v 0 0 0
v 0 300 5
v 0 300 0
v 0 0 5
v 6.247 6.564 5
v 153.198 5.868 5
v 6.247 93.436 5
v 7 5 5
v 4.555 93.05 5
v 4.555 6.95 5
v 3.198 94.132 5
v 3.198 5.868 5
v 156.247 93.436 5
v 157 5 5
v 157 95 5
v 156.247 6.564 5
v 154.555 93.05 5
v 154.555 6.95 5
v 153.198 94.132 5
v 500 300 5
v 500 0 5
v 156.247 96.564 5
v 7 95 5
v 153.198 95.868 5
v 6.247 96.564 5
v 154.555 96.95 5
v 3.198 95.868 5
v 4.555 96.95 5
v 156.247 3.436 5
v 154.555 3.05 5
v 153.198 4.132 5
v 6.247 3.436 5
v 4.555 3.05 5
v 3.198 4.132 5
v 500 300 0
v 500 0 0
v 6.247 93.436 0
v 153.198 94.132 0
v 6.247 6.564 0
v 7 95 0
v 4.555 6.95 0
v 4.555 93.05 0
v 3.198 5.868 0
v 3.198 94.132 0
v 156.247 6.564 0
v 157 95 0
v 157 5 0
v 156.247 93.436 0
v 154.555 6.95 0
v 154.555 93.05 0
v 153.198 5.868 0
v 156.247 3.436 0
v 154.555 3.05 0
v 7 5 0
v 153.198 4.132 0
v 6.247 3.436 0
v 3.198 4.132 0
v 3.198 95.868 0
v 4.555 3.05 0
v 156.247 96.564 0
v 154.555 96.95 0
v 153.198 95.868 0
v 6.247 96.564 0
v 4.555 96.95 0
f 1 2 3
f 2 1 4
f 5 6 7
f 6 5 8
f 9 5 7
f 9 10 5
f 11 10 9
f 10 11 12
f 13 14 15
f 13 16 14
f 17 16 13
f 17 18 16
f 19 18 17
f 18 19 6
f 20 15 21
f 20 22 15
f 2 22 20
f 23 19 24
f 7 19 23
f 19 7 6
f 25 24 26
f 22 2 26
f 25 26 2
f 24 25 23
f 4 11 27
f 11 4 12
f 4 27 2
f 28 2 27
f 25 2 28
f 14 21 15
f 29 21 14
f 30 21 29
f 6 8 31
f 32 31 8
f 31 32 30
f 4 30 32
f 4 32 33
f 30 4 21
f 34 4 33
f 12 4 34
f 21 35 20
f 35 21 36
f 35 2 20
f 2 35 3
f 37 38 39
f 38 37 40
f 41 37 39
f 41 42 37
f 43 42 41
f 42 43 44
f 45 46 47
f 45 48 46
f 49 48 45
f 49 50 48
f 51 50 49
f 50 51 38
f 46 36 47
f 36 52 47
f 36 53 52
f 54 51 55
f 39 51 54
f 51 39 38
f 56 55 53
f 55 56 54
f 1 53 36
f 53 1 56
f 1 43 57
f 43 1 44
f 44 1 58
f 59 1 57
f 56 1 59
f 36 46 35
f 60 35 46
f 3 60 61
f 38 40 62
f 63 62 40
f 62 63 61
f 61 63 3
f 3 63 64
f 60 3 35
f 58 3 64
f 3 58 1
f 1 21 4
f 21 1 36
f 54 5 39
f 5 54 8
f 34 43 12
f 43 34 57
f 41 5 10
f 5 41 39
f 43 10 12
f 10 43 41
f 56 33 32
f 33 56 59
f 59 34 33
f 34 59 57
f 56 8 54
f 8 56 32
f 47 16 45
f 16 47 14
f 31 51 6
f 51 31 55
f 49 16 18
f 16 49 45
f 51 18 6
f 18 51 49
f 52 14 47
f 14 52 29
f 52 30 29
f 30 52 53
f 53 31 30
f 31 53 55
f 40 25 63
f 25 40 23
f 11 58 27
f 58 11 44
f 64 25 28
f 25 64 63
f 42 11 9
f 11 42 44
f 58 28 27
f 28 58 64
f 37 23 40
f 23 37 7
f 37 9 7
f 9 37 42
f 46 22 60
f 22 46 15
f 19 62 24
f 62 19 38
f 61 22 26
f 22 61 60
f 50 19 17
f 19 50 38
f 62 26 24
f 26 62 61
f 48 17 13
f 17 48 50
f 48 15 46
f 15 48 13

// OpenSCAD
union() difference() { 
    cube(size = [500,300,5], center = false);
    translate([5,5,0])
    cylinder( d = 4.00, h = 20);
    translate([155,5,0])
    cylinder( d = 4.00, h = 20);
    translate([5,95,0])
    cylinder( d = 4.00, h = 20);
    translate([155,95,0])
    cylinder( d = 4.00, h = 20);
} 
